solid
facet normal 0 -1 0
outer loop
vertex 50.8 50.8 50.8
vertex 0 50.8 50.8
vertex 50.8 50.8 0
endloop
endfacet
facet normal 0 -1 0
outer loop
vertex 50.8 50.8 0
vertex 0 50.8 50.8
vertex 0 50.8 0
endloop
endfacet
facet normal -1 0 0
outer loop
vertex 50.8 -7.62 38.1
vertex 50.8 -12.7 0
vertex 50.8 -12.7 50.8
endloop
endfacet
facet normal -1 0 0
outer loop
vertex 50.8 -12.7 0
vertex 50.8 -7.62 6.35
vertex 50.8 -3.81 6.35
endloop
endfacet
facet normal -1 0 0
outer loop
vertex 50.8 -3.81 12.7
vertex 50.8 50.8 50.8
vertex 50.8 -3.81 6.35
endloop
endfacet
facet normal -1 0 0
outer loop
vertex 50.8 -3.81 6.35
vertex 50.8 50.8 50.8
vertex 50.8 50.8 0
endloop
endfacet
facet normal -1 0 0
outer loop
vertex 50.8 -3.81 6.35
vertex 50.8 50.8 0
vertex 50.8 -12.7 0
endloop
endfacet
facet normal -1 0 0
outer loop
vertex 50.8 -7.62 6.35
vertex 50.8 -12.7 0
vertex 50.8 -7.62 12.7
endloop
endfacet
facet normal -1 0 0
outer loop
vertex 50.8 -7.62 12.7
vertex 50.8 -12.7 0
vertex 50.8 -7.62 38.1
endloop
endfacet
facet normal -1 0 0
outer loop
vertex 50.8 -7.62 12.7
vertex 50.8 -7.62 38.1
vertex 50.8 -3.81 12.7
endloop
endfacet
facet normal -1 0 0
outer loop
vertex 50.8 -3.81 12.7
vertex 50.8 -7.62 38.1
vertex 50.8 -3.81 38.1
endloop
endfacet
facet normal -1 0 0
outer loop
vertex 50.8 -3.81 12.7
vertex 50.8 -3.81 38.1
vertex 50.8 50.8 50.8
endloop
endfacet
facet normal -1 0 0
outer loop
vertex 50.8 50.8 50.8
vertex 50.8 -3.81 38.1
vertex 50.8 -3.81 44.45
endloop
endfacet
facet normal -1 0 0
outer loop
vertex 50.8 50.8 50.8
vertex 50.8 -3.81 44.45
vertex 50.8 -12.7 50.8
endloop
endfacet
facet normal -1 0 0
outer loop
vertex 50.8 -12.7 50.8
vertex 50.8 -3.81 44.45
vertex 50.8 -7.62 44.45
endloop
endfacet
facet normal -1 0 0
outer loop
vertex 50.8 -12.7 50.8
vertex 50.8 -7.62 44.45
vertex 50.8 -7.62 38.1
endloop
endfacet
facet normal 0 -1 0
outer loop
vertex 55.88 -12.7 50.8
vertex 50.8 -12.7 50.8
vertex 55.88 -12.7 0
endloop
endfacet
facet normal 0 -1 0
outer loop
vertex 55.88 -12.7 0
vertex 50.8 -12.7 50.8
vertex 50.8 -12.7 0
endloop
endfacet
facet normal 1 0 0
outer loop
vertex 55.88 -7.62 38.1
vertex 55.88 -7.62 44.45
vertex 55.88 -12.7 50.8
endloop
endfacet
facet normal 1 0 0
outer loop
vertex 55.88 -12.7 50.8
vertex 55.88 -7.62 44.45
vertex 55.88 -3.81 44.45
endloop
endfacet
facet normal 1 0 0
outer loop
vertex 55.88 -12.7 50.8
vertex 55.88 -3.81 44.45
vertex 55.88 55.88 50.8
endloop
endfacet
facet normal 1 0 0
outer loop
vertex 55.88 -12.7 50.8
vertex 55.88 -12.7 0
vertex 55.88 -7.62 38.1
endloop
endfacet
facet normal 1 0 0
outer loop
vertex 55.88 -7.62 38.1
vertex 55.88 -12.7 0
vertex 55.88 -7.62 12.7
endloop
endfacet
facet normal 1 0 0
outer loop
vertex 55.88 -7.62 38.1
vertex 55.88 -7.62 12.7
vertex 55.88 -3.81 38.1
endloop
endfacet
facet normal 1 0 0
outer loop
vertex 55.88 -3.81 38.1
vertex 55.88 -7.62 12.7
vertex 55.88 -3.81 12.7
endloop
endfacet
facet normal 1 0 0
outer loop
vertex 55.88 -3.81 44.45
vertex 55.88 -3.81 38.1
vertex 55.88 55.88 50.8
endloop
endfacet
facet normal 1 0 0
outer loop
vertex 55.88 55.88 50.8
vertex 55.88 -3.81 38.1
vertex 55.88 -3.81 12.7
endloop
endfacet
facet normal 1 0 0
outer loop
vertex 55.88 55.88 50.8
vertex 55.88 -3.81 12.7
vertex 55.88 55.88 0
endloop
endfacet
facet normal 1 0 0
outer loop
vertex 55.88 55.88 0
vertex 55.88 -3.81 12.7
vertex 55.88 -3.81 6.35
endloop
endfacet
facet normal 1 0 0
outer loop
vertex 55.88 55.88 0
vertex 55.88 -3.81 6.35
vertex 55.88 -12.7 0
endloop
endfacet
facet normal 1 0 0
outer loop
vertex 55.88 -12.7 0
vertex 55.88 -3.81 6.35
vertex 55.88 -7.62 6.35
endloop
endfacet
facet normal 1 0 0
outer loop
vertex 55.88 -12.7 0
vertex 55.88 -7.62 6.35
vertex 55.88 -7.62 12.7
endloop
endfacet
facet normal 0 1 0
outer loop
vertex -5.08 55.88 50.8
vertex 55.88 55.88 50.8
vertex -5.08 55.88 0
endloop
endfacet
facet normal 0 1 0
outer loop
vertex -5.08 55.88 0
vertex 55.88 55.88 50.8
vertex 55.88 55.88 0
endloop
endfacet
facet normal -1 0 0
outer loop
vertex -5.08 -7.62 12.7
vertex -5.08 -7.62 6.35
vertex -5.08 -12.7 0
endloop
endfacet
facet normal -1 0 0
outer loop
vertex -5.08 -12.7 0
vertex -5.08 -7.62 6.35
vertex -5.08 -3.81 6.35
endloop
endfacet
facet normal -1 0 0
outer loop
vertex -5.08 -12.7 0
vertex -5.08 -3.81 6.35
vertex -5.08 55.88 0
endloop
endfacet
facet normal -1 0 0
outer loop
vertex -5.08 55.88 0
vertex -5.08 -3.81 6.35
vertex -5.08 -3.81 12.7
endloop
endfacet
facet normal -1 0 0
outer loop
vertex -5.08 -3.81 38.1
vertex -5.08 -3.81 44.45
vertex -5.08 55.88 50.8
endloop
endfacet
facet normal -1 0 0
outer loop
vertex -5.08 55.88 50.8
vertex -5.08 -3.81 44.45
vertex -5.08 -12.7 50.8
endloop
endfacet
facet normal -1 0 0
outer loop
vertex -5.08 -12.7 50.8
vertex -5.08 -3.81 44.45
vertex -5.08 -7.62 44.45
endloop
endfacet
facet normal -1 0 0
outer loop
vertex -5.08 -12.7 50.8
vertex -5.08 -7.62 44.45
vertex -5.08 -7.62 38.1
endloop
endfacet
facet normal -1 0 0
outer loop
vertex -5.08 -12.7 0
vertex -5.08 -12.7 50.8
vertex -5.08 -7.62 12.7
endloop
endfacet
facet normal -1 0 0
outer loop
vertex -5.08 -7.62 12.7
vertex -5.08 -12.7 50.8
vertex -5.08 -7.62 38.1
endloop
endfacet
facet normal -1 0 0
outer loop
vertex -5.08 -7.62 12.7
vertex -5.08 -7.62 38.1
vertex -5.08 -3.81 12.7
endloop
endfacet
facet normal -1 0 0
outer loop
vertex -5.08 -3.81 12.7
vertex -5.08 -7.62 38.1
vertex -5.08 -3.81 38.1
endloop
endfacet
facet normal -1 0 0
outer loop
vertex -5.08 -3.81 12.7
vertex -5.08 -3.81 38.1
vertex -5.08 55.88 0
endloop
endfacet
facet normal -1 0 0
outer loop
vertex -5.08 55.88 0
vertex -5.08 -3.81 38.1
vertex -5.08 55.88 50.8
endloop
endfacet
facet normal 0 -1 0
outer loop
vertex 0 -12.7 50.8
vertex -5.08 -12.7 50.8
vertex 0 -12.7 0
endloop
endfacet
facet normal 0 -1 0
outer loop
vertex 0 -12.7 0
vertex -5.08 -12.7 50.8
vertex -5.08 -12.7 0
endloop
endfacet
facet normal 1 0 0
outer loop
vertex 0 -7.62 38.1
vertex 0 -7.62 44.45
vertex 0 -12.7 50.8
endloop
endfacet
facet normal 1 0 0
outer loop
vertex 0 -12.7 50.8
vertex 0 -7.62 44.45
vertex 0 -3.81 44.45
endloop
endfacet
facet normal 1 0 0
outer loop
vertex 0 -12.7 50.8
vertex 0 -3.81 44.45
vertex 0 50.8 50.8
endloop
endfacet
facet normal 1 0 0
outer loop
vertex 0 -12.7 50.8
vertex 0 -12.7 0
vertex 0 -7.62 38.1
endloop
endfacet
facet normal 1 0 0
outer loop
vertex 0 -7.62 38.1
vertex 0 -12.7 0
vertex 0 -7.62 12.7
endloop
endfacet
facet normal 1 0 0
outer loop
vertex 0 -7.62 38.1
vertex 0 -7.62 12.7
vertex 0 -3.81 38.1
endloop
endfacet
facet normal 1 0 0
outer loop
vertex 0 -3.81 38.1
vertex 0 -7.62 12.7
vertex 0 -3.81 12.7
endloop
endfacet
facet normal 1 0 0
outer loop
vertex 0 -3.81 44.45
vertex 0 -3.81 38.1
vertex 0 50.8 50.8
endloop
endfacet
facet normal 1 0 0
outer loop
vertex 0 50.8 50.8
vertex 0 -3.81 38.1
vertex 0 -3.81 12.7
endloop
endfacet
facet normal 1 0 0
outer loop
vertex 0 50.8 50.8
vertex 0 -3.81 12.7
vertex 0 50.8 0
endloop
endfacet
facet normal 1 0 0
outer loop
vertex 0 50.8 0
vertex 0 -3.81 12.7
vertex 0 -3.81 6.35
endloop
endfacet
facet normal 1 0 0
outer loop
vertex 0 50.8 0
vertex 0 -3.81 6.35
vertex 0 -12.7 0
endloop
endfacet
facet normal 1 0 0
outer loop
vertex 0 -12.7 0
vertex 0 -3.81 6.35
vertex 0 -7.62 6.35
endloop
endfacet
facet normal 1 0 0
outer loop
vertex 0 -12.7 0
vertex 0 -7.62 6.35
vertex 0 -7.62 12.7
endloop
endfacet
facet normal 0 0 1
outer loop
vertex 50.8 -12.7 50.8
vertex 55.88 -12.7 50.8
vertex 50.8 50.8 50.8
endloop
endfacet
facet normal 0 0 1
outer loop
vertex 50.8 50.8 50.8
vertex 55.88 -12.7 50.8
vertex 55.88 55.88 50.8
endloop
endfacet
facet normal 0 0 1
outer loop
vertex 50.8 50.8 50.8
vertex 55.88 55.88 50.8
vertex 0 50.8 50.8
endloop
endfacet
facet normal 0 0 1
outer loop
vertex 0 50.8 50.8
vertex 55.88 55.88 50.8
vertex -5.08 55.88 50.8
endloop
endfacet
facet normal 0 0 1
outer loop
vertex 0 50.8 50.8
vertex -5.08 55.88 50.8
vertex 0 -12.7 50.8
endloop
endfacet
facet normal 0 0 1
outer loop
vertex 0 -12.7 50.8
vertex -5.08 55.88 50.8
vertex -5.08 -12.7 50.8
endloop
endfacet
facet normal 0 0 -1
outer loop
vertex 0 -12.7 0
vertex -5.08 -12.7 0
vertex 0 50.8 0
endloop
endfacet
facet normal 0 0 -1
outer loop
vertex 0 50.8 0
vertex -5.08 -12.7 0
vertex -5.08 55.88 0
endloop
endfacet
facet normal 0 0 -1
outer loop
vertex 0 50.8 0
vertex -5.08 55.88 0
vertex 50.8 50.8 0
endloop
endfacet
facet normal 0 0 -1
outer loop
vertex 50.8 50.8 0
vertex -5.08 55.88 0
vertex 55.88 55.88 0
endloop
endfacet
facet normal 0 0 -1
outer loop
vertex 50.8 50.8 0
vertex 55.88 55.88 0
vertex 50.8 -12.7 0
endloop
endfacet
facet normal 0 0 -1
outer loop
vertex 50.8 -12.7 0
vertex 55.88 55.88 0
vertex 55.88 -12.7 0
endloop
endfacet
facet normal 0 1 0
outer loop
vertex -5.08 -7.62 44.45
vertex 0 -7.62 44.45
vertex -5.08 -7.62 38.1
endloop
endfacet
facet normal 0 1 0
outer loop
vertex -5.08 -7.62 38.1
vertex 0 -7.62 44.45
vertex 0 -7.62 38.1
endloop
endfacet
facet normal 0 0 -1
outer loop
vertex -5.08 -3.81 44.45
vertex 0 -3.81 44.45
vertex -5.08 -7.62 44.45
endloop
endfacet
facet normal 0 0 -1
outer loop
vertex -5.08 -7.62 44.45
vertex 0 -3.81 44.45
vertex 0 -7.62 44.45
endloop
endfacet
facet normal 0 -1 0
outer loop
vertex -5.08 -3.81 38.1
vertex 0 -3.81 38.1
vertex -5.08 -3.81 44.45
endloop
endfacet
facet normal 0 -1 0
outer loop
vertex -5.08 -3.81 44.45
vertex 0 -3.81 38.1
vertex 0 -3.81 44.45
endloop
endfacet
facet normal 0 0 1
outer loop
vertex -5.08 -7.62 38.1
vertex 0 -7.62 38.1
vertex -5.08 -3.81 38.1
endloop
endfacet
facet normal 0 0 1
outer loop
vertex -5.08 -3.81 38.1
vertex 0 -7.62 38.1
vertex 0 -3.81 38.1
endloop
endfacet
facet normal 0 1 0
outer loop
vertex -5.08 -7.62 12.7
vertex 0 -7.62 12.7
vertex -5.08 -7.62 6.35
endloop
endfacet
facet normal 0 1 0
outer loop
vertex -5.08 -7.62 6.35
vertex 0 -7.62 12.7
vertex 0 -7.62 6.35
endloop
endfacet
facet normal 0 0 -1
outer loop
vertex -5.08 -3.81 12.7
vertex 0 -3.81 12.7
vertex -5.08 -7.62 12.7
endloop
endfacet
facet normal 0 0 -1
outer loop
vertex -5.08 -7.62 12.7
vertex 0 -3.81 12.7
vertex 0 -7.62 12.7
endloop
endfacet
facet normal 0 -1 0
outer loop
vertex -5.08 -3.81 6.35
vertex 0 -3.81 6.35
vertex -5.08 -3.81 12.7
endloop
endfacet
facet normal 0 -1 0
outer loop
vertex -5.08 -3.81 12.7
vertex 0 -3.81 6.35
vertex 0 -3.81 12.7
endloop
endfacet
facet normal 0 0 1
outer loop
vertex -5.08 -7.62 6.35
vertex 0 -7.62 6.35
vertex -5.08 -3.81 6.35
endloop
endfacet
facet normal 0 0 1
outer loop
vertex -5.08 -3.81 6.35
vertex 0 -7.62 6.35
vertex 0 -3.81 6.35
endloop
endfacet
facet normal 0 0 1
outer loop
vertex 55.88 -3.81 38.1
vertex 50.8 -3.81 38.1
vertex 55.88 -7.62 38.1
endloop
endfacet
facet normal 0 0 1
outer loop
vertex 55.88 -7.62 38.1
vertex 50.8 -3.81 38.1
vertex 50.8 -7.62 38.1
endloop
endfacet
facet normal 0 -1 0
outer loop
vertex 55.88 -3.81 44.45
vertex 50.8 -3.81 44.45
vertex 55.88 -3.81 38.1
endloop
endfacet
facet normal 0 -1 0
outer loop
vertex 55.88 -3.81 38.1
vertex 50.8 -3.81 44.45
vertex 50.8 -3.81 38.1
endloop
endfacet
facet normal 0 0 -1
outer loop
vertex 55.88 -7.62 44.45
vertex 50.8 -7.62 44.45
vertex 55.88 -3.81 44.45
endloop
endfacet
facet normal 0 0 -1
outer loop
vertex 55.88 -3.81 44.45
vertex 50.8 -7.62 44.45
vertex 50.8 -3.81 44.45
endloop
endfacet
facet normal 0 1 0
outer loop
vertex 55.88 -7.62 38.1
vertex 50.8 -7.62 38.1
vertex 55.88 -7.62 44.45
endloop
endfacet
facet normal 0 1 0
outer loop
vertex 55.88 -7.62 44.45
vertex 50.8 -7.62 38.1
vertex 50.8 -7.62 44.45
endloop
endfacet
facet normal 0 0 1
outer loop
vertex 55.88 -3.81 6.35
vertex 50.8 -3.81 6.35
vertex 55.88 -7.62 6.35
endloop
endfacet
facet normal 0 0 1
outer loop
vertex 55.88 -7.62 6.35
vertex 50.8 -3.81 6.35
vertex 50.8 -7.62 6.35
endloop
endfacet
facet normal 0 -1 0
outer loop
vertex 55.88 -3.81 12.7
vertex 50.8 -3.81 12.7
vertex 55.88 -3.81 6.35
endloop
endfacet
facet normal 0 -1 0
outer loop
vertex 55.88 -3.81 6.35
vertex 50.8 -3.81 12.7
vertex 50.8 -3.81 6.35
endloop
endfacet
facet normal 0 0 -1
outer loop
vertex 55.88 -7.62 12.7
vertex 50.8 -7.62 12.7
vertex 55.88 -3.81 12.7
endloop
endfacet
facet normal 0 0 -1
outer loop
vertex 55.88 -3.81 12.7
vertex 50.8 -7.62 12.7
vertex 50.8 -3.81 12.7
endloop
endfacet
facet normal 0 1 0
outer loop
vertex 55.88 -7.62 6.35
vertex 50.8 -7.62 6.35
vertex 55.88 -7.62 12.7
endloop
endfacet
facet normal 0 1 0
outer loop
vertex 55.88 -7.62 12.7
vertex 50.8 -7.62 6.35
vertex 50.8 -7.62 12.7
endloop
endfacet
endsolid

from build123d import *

# Parameters (mm, degrees)
BOSS_EXTRUDE1_DEPTH = 50.8
SKETCH2_W           = 6.35
SKETCH2_H           = 3.81
CUT_EXTRUDE1_DEPTH  = 98.053263727


with BuildPart() as part:
    # Sketch1 → Boss-Extrude1 (new body)
    with BuildSketch(Plane.XY):
        Polygon((55.88, 55.88), (55.88, -12.7), (50.8, -12.7), (50.8, 50.8), (0, 50.8), (0, -12.7), (-5.08, -12.7), (-5.08, 55.88), align=None)
    extrude(amount=BOSS_EXTRUDE1_DEPTH)

    # Sketch2 → Cut-Extrude1 (cut, through all)
    with BuildSketch(Plane.ZY.offset(5.08)):
        with Locations((9.525, -5.715)):
            Rectangle(SKETCH2_W, SKETCH2_H)
        with Locations((41.275, -5.715)):
            Rectangle(SKETCH2_W, SKETCH2_H)
    extrude(amount=-CUT_EXTRUDE1_DEPTH, mode=Mode.SUBTRACT)


solid = part.part
